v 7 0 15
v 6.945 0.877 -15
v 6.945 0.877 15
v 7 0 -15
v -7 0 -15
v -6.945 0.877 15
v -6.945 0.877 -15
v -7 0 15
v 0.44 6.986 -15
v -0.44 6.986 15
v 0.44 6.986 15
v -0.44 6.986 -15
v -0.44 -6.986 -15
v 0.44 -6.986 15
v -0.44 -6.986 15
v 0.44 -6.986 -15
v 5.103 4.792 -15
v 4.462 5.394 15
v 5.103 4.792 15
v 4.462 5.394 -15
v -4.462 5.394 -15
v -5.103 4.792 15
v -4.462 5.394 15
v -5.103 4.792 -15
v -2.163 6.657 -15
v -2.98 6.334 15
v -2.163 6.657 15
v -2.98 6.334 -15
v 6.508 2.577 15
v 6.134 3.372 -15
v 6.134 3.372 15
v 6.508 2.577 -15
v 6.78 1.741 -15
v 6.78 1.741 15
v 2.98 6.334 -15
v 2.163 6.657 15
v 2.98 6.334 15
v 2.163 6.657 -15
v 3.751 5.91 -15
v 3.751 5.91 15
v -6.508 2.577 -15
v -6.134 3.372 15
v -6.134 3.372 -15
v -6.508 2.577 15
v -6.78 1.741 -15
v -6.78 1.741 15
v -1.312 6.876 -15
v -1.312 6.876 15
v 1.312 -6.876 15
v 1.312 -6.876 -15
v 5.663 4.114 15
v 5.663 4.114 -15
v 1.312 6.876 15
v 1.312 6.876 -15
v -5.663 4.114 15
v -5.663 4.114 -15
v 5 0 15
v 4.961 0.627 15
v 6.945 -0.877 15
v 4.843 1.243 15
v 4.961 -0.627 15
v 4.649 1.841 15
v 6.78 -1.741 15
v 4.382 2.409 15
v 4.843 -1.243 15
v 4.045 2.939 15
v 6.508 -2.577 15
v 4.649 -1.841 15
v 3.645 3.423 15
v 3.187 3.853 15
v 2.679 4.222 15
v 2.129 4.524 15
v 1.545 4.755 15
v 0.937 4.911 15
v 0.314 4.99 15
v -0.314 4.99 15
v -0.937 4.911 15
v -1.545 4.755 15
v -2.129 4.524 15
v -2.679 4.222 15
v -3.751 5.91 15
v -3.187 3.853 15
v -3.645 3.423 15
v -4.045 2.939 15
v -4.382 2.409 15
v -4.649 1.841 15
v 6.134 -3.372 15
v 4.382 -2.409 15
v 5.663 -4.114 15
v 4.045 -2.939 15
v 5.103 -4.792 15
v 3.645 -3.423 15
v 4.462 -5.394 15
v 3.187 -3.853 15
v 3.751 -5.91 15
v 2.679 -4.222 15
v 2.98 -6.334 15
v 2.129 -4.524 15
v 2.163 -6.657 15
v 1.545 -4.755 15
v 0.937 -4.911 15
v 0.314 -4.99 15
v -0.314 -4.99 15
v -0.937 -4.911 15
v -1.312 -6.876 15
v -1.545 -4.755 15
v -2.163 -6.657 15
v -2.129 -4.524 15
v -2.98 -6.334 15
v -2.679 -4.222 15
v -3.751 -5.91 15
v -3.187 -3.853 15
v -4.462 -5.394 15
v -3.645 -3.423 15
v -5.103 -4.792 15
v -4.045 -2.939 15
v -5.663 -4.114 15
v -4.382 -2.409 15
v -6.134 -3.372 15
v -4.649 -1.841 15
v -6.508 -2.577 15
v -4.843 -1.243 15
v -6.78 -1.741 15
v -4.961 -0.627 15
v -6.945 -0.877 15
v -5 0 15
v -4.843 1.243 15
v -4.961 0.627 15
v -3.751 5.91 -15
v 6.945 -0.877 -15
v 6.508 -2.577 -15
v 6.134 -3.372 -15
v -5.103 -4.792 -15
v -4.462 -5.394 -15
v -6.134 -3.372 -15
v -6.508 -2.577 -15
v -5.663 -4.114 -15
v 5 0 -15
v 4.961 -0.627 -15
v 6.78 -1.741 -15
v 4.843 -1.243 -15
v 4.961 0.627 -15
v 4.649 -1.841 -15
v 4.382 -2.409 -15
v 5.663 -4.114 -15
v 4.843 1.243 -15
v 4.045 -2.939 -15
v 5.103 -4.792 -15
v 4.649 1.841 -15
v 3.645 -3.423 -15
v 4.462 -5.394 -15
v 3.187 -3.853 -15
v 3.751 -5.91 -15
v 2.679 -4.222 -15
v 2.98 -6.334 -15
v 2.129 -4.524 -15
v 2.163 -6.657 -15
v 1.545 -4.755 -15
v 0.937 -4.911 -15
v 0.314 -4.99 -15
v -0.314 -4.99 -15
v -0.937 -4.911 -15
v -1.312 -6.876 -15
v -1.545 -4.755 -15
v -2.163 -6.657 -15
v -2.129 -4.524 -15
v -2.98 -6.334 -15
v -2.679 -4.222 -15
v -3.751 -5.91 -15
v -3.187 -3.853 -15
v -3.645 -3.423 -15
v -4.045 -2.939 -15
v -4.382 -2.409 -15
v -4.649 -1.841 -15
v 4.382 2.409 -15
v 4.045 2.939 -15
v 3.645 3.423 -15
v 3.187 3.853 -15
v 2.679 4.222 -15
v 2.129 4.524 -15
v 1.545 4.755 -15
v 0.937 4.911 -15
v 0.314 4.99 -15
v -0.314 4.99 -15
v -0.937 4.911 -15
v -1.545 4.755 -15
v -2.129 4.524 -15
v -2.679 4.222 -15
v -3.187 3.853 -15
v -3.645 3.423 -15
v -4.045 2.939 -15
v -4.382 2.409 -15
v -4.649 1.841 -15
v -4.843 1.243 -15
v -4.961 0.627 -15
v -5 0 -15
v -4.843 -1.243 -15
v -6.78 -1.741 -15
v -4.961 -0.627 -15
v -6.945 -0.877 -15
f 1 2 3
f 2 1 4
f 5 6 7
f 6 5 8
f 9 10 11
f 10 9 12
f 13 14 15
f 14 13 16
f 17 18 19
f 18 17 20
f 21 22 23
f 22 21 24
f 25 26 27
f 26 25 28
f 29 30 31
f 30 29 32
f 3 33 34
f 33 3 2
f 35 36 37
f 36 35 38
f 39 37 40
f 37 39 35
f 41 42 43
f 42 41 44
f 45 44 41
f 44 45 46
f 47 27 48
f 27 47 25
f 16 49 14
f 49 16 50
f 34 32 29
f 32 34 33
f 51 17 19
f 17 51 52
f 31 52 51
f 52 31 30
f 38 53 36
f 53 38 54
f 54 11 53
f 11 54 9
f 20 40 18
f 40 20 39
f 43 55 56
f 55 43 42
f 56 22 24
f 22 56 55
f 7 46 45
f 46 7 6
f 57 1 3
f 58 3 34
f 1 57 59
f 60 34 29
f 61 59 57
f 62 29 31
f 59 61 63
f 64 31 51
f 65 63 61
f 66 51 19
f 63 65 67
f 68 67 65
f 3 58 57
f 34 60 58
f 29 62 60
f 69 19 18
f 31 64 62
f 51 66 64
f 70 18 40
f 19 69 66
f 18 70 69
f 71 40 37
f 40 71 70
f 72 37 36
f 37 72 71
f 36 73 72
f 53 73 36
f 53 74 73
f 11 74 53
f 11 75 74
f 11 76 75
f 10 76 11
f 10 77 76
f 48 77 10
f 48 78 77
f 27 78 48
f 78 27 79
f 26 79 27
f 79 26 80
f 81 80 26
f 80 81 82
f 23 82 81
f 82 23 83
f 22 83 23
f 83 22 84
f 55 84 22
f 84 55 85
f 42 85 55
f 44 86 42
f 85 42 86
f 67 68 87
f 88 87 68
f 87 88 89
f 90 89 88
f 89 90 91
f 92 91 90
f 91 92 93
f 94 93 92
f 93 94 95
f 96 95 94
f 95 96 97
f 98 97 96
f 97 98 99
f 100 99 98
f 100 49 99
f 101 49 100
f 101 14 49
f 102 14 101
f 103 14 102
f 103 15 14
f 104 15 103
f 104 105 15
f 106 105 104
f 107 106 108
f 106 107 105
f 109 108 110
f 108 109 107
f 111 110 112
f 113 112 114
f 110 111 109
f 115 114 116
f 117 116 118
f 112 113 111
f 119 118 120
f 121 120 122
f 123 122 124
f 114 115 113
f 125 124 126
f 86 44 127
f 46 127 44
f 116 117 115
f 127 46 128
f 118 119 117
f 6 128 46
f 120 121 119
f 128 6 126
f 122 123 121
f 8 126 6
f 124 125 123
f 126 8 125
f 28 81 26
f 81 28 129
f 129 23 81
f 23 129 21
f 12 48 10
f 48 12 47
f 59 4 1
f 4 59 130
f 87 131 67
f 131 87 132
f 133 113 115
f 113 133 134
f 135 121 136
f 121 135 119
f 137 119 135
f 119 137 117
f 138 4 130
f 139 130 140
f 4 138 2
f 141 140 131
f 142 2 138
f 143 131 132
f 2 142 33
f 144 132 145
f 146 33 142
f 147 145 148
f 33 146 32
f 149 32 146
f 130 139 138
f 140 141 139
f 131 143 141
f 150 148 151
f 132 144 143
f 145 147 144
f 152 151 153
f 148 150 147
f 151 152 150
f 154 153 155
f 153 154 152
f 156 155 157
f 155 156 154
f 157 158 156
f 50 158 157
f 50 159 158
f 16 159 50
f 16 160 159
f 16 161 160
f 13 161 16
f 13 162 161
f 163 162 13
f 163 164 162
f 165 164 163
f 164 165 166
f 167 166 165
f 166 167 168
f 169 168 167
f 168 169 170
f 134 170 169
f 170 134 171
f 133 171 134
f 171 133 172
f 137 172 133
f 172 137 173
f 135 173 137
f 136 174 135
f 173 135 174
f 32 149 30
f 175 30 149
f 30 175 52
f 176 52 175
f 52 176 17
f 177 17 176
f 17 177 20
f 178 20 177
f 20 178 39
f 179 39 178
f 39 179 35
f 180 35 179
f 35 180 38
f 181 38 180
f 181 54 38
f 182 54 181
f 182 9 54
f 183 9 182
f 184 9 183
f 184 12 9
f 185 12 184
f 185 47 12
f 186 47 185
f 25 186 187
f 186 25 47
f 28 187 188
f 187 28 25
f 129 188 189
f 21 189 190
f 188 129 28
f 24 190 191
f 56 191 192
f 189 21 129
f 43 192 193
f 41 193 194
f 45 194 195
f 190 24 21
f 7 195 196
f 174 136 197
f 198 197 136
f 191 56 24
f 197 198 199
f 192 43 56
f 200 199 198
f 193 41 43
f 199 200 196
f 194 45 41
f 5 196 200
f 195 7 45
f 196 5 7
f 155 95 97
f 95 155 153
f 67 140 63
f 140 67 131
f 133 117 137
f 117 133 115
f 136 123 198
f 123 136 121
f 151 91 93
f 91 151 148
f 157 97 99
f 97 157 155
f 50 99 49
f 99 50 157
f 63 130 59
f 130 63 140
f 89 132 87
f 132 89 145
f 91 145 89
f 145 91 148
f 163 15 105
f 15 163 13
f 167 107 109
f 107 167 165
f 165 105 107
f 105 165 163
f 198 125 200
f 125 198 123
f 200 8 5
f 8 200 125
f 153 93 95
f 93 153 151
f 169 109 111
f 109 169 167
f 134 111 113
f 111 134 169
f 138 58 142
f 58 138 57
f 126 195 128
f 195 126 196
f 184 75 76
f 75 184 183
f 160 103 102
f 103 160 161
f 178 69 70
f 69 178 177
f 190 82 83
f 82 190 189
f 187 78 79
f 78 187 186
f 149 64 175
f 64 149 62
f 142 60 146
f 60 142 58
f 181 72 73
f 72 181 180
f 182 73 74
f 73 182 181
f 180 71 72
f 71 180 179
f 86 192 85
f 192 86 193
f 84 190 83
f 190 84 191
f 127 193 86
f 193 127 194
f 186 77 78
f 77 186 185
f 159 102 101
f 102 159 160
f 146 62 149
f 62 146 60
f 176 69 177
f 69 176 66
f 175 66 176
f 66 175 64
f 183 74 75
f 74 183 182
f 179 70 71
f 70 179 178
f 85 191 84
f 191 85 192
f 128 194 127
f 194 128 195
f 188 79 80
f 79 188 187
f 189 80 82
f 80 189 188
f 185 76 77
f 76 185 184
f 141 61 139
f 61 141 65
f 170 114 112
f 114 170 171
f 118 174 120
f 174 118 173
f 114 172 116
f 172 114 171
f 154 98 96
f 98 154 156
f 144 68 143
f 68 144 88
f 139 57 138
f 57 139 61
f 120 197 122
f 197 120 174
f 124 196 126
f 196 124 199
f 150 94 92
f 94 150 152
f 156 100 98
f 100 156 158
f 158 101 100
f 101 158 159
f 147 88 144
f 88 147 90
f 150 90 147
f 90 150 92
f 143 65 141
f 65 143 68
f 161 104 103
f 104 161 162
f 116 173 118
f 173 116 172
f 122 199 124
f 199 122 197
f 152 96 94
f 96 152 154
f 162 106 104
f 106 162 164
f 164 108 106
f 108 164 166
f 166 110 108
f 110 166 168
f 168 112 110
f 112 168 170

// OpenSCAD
$fn = 50;


difference() {
	union() {
		translate(v = [0, 0, -15.0000000000]) {
			cylinder(h = 30, r = 7.0000000000);
		}
	}
	union() {
		translate(v = [0, 0, -100.0000000000]) {
			cylinder(h = 200, r = 5);
		}
	}
}
